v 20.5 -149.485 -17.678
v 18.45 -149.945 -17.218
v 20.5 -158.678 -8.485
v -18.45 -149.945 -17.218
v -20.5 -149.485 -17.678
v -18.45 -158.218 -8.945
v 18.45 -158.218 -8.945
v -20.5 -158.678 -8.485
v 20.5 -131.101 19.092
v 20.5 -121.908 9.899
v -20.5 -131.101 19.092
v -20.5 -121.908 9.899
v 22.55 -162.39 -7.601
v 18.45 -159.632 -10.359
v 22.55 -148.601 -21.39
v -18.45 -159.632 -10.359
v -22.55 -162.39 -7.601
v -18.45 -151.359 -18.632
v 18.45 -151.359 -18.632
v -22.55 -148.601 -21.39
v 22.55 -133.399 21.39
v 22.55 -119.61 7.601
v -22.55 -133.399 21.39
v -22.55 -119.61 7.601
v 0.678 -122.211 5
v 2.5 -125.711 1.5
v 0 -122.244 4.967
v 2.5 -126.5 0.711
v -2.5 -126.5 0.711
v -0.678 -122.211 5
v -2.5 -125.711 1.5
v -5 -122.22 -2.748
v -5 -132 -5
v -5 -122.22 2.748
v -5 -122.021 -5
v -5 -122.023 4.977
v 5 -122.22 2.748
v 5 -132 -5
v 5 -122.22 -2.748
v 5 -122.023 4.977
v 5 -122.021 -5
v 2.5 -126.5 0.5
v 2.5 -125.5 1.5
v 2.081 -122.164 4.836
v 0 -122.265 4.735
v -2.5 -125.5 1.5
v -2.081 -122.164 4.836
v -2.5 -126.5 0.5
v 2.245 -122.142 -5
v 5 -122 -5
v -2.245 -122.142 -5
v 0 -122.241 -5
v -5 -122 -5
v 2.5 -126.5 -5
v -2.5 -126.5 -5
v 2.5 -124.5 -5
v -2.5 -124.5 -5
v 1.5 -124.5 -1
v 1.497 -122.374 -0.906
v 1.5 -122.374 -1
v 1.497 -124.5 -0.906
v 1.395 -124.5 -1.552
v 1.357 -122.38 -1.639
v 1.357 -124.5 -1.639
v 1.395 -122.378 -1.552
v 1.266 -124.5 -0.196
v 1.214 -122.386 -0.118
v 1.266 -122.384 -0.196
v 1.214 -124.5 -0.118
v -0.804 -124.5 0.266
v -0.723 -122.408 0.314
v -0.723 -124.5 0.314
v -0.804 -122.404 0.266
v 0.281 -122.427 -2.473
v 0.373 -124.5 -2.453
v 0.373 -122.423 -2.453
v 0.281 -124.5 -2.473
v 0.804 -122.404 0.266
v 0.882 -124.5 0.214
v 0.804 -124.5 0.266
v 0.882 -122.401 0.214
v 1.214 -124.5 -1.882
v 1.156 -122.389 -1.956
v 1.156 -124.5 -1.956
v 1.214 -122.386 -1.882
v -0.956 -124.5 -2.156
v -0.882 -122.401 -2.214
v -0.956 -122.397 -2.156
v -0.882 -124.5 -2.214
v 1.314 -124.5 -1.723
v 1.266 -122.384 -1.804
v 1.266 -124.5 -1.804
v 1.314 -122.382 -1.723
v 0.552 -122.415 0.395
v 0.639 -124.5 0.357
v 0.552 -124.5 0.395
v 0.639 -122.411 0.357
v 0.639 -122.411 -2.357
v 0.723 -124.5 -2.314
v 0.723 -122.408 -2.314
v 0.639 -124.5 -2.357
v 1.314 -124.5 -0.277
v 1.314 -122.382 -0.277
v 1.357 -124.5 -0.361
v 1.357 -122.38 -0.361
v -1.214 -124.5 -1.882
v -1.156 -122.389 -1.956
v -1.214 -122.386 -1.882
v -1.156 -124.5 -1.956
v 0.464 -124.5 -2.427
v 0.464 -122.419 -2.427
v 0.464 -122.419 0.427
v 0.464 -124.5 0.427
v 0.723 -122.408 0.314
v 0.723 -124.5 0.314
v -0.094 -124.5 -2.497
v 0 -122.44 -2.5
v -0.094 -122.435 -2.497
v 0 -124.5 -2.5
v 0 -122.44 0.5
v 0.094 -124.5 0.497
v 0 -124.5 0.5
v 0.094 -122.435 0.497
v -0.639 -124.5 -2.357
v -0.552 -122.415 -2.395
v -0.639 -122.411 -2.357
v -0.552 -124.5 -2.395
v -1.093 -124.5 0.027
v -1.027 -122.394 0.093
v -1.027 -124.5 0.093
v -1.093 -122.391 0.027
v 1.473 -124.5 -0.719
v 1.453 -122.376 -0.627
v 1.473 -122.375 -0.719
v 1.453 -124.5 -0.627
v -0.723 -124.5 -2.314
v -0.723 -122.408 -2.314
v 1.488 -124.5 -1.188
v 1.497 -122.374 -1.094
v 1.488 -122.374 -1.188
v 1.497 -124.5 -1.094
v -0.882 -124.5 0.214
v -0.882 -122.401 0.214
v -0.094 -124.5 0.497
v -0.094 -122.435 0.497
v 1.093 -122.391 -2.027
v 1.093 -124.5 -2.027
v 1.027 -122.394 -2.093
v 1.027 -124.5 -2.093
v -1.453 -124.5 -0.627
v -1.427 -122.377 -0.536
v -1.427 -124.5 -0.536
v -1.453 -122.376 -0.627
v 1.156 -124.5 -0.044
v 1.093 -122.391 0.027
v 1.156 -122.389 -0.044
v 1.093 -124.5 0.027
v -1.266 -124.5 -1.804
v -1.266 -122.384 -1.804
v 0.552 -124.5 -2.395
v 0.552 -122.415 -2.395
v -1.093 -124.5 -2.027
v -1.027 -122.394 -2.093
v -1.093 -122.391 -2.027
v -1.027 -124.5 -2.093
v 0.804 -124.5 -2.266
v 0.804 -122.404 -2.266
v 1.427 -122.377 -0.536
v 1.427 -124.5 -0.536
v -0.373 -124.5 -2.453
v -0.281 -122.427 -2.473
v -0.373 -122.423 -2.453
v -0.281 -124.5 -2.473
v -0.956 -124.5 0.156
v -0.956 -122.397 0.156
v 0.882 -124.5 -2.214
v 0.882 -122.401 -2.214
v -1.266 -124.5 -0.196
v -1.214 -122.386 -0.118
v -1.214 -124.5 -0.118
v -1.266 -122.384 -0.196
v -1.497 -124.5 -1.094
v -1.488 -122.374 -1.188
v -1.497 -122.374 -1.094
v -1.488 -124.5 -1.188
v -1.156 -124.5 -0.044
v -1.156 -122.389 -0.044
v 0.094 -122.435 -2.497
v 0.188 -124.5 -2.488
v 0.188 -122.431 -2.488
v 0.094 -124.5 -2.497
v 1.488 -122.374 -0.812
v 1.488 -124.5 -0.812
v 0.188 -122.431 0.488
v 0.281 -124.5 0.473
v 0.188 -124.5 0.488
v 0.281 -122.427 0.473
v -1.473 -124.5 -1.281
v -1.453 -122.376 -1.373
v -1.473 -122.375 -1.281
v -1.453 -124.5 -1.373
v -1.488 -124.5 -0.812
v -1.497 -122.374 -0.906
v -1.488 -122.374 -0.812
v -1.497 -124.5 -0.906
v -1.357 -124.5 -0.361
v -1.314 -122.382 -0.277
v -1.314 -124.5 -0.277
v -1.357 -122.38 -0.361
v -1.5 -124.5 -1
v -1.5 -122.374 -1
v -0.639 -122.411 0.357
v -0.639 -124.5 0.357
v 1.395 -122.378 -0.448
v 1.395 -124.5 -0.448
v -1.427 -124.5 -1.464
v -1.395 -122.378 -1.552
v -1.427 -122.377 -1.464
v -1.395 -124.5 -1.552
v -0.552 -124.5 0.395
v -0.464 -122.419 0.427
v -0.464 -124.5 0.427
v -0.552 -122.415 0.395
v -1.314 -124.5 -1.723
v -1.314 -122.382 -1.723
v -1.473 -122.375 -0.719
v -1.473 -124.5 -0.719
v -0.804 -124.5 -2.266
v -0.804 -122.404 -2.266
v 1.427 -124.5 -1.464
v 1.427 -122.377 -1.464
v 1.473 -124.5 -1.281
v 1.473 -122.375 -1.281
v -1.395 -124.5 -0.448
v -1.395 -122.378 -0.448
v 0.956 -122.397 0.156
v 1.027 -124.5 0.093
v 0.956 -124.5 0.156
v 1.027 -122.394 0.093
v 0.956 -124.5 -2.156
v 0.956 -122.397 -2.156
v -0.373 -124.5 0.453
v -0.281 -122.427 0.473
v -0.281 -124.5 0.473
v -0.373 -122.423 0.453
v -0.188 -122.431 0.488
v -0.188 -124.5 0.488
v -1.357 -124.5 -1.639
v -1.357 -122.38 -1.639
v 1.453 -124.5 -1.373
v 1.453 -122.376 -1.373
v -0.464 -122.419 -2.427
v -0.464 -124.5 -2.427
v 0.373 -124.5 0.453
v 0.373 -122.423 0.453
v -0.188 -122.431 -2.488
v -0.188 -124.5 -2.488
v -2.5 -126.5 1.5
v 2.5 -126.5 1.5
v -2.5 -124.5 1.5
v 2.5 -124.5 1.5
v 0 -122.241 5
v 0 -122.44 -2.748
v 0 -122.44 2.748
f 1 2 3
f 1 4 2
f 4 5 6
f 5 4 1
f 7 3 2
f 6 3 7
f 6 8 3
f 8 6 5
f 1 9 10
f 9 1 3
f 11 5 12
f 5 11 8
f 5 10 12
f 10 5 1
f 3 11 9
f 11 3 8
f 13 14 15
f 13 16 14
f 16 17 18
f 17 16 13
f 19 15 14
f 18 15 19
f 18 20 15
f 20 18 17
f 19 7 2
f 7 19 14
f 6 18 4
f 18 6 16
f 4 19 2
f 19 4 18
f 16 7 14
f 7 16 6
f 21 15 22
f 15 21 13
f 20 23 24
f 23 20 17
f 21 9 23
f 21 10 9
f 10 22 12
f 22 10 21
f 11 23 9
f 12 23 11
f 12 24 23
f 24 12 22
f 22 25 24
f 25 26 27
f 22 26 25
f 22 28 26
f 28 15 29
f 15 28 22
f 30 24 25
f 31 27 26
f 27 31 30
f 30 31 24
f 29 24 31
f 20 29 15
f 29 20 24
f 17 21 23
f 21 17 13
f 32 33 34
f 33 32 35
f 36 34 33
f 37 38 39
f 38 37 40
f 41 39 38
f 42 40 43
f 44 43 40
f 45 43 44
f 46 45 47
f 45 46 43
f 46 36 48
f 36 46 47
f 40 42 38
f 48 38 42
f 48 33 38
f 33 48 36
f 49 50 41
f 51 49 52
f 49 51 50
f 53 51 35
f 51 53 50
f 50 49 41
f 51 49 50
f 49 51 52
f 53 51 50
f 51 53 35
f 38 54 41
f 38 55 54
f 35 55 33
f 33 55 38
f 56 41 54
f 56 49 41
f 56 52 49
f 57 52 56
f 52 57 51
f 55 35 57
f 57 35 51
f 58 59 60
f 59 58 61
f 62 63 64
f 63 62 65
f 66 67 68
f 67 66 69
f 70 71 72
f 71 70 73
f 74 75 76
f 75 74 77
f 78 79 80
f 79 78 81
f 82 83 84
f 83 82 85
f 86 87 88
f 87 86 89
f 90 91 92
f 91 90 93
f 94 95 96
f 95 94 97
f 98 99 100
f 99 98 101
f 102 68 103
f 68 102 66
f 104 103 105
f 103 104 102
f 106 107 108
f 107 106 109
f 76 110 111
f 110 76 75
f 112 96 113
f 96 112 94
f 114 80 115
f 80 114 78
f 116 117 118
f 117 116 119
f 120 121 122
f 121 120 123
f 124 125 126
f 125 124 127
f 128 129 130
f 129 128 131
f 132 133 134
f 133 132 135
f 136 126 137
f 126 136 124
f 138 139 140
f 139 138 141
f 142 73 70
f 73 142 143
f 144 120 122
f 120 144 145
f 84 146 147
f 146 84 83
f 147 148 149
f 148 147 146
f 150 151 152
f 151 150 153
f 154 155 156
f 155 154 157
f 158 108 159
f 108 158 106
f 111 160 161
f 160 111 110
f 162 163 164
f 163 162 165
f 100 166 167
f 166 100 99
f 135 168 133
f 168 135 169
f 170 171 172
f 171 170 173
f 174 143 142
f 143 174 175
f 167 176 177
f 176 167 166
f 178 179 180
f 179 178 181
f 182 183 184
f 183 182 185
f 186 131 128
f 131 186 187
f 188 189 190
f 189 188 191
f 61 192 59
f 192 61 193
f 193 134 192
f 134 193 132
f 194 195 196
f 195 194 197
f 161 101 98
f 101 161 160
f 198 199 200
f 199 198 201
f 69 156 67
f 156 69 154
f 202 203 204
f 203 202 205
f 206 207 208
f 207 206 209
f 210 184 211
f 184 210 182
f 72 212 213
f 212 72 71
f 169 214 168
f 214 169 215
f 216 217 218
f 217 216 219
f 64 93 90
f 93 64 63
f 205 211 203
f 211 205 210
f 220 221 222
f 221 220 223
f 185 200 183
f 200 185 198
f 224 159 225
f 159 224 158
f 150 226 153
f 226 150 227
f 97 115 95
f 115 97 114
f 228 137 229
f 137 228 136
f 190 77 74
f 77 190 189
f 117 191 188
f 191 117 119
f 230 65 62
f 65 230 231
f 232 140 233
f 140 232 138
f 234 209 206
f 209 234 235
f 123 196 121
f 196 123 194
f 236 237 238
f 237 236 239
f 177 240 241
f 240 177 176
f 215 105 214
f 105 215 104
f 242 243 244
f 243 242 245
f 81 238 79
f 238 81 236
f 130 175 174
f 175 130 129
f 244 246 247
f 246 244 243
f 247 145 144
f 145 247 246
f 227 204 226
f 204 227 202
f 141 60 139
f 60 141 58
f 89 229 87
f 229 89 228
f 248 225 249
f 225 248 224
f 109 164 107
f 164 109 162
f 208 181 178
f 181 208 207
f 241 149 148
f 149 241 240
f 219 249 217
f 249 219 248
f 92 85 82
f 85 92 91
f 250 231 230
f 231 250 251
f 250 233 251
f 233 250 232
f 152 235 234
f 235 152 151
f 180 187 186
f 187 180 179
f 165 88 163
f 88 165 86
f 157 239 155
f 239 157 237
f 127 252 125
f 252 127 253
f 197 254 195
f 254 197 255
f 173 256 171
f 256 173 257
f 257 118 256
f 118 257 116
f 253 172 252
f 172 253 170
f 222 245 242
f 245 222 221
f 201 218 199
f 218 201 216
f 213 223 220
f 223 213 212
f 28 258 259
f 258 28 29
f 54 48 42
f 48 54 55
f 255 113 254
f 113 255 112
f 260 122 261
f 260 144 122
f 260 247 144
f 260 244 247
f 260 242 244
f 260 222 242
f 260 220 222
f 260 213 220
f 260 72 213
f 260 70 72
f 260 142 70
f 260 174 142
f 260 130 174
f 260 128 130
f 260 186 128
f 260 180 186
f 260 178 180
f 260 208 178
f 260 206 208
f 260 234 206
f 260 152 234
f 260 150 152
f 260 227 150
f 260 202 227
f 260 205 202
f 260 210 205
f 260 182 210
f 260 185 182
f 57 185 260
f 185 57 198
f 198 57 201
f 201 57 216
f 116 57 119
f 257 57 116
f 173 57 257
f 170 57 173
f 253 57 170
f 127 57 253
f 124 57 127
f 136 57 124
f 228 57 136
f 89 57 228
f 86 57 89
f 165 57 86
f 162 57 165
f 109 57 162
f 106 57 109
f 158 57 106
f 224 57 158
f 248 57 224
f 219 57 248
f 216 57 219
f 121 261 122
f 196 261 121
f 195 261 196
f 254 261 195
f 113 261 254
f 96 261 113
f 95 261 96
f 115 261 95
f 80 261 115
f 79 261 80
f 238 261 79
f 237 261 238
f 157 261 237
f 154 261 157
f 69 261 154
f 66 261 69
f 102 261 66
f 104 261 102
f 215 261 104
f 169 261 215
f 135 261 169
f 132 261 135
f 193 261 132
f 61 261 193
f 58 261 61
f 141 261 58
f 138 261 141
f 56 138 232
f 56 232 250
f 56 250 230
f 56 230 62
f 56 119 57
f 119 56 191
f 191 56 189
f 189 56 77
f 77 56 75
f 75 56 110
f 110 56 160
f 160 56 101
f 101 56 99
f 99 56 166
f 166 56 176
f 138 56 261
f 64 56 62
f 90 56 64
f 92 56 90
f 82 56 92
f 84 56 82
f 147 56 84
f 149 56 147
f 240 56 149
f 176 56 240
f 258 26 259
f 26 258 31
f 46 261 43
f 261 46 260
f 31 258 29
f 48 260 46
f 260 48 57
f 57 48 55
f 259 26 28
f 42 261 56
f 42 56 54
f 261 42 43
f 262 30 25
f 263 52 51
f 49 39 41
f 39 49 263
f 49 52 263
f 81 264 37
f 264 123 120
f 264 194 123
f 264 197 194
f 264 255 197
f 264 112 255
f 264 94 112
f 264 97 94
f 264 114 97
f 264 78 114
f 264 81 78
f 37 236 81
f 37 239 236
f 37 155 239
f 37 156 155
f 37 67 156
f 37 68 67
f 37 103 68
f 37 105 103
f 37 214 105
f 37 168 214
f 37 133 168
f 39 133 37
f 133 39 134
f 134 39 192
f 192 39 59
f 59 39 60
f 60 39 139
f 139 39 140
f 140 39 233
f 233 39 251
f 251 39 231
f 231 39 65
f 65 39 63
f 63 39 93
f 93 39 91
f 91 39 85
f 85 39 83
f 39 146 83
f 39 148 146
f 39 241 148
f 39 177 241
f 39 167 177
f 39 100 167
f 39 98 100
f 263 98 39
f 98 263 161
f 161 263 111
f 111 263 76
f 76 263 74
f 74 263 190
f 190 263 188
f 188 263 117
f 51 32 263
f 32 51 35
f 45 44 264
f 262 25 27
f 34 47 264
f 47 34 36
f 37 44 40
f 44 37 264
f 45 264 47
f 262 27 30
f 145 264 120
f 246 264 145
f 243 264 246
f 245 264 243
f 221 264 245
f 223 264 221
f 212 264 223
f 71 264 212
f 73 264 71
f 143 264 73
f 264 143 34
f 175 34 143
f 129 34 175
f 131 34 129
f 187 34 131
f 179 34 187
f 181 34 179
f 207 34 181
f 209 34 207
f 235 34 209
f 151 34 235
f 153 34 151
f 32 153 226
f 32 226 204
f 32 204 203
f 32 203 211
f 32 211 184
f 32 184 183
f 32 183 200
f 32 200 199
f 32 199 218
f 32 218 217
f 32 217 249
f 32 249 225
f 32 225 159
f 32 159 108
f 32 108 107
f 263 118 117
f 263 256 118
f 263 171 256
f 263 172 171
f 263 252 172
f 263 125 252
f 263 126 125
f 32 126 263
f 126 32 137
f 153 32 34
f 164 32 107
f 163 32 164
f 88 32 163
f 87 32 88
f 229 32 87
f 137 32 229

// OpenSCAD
// file: ../nut.scad
// 1.5^2 + y^2 = 3^2
// sqrt(3^2 - 1.5^2)
//       30
//    /   |
// 60  - 90
// cos(30) = x / 3
// x = 3 cos(30)
module hex(side_length=3) {
  points = [[0,0], [side_length, 0], [side_length / 2, side_length * cos(30)]];
  for (i=[0:1:5]) {
    rotate([0,0,i * 60]) polygon(points);
  }
}

module hex_nut(side_length=3, height=2) {
    linear_extrude(height=height) hex(side_length);
}

module square_nut(side_length=5, height=2) {
    cube([5,5,2]);
}
// file: ../screw.scad
$fn=100;

module screw(screw_head_radius=3, screw_head_height=3, threaded_radius=1.5, threaded_height=10) {
  // screw head
  cylinder(h=screw_head_height, r=screw_head_radius);

  translate([0, 0, screw_head_height]) {
    cylinder(h=threaded_height, r=threaded_radius);
  }
}

// m3x10

screw(screw_head_radius=3, screw_head_height=3, threaded_radius=1.5, threaded_height=10);
// file: ../screw_with_nut.scad
use <screw.scad>
use <nut.scad>

module screw_with_nut(hex_nut_height=2, screw_head_height=3, threaded_height=10, threaded_radius=1.5, screw_head_radius=3, hex_nut_side_length=3, square_nut_height=2, square_nut_side_length=5, nut_type="hex") {
  screw(screw_head_radius=screw_head_radius, screw_head_height=screw_head_height, threaded_radius=threaded_radius, threaded_height=threaded_height);

  if (nut_type == "hex") {
    translate([0,0, screw_head_height + threaded_height - hex_nut_height]) {
      hex_nut(side_length=hex_nut_side_length, height=hex_nut_height);
    }
  } else {
    translate([
        -square_nut_side_length / 2,
        -square_nut_side_length / 2,
        screw_head_height + threaded_height - square_nut_height
    ]) {
      square_nut(side_length=square_nut_side_length, height=square_nut_height);
    }
  }
}

screw_with_nut(nut_type="square");
// file: sps30.scad
function get_sps30_dims() = [41, 13, 41];

module sps30() {
  cube(get_sps30_dims(), center=true);
}
// file: head_support.scad
use <../screw_with_nut.scad>

$fn=100;
width = 165 + 10;
length = 228 + 10;
ruler_z = 0;

function get_length() = length;
// ruler
// translate([0,0,ruler_z]) {
  // cube([5,length,5], center=true);
// }

// ruler
// translate([0,0,ruler_z]) {
  // cube([width,5,5], center=true);
// }


module head_support() {
  difference() {
    scale([1,1.4,1]) {
      sphere(width / 2);
    }

    union() {

      scale([0.95,1.35,1]) {
        sphere(width / 2);
      }
      translate([0,0,width / 2 + 5]) {
        remove();
      }
      translate([0,0,-width / 2 - 5]) {
        remove();
      }

      screw_hole();
    }
  }
}

module remove() {
  cube([width,length + 10,width], center=true);
}


module screw_hole() {
  translate([0,-length / 2 + 1.5,-1]) {
    rotate([90,0,0])
    screw_with_nut(threaded_height=6, nut_type="square");

  }
}

head_support();

// sps30_holder_with_wedge();
// main file
use <head_support.scad>
use <sps30.scad>



module sps30_for_subtraction() {
  rotate([0,90,0])
    sps30();

  translate([0,0,-2]) {
    scale([0.9,0.9,1]) {

      rotate([0,90,0])
        sps30();

    }
  }
}


module sps30_holder() {
  difference() {
    scale([1.1,1.5,1]) {
      rotate([0,90,0])
        sps30();
    }
    translate([0,0,2]) {
      sps30_for_subtraction();
    }

  }
}

module sps30_holder_with_wedge(length) {
  difference() {
    union() {

      translate([0,-length / 2 - 22,0]) {
        rotate([-45,0,0])
          sps30_holder();

      }


      // cylinder(h=10, r=5, center=true);
      translate([-5,-length / 2 - 3,-5]) {
        rotate([0,0,180])
          rotate([0,-90,0])
          linear_extrude(height=10)
          polygon(points=[[0,0], [10, 0], [0, 10]]);
      }
    }
    union() {
      screw_hole();
      head_support();
    }
  }


}

sps30_holder_with_wedge(length=get_length());
